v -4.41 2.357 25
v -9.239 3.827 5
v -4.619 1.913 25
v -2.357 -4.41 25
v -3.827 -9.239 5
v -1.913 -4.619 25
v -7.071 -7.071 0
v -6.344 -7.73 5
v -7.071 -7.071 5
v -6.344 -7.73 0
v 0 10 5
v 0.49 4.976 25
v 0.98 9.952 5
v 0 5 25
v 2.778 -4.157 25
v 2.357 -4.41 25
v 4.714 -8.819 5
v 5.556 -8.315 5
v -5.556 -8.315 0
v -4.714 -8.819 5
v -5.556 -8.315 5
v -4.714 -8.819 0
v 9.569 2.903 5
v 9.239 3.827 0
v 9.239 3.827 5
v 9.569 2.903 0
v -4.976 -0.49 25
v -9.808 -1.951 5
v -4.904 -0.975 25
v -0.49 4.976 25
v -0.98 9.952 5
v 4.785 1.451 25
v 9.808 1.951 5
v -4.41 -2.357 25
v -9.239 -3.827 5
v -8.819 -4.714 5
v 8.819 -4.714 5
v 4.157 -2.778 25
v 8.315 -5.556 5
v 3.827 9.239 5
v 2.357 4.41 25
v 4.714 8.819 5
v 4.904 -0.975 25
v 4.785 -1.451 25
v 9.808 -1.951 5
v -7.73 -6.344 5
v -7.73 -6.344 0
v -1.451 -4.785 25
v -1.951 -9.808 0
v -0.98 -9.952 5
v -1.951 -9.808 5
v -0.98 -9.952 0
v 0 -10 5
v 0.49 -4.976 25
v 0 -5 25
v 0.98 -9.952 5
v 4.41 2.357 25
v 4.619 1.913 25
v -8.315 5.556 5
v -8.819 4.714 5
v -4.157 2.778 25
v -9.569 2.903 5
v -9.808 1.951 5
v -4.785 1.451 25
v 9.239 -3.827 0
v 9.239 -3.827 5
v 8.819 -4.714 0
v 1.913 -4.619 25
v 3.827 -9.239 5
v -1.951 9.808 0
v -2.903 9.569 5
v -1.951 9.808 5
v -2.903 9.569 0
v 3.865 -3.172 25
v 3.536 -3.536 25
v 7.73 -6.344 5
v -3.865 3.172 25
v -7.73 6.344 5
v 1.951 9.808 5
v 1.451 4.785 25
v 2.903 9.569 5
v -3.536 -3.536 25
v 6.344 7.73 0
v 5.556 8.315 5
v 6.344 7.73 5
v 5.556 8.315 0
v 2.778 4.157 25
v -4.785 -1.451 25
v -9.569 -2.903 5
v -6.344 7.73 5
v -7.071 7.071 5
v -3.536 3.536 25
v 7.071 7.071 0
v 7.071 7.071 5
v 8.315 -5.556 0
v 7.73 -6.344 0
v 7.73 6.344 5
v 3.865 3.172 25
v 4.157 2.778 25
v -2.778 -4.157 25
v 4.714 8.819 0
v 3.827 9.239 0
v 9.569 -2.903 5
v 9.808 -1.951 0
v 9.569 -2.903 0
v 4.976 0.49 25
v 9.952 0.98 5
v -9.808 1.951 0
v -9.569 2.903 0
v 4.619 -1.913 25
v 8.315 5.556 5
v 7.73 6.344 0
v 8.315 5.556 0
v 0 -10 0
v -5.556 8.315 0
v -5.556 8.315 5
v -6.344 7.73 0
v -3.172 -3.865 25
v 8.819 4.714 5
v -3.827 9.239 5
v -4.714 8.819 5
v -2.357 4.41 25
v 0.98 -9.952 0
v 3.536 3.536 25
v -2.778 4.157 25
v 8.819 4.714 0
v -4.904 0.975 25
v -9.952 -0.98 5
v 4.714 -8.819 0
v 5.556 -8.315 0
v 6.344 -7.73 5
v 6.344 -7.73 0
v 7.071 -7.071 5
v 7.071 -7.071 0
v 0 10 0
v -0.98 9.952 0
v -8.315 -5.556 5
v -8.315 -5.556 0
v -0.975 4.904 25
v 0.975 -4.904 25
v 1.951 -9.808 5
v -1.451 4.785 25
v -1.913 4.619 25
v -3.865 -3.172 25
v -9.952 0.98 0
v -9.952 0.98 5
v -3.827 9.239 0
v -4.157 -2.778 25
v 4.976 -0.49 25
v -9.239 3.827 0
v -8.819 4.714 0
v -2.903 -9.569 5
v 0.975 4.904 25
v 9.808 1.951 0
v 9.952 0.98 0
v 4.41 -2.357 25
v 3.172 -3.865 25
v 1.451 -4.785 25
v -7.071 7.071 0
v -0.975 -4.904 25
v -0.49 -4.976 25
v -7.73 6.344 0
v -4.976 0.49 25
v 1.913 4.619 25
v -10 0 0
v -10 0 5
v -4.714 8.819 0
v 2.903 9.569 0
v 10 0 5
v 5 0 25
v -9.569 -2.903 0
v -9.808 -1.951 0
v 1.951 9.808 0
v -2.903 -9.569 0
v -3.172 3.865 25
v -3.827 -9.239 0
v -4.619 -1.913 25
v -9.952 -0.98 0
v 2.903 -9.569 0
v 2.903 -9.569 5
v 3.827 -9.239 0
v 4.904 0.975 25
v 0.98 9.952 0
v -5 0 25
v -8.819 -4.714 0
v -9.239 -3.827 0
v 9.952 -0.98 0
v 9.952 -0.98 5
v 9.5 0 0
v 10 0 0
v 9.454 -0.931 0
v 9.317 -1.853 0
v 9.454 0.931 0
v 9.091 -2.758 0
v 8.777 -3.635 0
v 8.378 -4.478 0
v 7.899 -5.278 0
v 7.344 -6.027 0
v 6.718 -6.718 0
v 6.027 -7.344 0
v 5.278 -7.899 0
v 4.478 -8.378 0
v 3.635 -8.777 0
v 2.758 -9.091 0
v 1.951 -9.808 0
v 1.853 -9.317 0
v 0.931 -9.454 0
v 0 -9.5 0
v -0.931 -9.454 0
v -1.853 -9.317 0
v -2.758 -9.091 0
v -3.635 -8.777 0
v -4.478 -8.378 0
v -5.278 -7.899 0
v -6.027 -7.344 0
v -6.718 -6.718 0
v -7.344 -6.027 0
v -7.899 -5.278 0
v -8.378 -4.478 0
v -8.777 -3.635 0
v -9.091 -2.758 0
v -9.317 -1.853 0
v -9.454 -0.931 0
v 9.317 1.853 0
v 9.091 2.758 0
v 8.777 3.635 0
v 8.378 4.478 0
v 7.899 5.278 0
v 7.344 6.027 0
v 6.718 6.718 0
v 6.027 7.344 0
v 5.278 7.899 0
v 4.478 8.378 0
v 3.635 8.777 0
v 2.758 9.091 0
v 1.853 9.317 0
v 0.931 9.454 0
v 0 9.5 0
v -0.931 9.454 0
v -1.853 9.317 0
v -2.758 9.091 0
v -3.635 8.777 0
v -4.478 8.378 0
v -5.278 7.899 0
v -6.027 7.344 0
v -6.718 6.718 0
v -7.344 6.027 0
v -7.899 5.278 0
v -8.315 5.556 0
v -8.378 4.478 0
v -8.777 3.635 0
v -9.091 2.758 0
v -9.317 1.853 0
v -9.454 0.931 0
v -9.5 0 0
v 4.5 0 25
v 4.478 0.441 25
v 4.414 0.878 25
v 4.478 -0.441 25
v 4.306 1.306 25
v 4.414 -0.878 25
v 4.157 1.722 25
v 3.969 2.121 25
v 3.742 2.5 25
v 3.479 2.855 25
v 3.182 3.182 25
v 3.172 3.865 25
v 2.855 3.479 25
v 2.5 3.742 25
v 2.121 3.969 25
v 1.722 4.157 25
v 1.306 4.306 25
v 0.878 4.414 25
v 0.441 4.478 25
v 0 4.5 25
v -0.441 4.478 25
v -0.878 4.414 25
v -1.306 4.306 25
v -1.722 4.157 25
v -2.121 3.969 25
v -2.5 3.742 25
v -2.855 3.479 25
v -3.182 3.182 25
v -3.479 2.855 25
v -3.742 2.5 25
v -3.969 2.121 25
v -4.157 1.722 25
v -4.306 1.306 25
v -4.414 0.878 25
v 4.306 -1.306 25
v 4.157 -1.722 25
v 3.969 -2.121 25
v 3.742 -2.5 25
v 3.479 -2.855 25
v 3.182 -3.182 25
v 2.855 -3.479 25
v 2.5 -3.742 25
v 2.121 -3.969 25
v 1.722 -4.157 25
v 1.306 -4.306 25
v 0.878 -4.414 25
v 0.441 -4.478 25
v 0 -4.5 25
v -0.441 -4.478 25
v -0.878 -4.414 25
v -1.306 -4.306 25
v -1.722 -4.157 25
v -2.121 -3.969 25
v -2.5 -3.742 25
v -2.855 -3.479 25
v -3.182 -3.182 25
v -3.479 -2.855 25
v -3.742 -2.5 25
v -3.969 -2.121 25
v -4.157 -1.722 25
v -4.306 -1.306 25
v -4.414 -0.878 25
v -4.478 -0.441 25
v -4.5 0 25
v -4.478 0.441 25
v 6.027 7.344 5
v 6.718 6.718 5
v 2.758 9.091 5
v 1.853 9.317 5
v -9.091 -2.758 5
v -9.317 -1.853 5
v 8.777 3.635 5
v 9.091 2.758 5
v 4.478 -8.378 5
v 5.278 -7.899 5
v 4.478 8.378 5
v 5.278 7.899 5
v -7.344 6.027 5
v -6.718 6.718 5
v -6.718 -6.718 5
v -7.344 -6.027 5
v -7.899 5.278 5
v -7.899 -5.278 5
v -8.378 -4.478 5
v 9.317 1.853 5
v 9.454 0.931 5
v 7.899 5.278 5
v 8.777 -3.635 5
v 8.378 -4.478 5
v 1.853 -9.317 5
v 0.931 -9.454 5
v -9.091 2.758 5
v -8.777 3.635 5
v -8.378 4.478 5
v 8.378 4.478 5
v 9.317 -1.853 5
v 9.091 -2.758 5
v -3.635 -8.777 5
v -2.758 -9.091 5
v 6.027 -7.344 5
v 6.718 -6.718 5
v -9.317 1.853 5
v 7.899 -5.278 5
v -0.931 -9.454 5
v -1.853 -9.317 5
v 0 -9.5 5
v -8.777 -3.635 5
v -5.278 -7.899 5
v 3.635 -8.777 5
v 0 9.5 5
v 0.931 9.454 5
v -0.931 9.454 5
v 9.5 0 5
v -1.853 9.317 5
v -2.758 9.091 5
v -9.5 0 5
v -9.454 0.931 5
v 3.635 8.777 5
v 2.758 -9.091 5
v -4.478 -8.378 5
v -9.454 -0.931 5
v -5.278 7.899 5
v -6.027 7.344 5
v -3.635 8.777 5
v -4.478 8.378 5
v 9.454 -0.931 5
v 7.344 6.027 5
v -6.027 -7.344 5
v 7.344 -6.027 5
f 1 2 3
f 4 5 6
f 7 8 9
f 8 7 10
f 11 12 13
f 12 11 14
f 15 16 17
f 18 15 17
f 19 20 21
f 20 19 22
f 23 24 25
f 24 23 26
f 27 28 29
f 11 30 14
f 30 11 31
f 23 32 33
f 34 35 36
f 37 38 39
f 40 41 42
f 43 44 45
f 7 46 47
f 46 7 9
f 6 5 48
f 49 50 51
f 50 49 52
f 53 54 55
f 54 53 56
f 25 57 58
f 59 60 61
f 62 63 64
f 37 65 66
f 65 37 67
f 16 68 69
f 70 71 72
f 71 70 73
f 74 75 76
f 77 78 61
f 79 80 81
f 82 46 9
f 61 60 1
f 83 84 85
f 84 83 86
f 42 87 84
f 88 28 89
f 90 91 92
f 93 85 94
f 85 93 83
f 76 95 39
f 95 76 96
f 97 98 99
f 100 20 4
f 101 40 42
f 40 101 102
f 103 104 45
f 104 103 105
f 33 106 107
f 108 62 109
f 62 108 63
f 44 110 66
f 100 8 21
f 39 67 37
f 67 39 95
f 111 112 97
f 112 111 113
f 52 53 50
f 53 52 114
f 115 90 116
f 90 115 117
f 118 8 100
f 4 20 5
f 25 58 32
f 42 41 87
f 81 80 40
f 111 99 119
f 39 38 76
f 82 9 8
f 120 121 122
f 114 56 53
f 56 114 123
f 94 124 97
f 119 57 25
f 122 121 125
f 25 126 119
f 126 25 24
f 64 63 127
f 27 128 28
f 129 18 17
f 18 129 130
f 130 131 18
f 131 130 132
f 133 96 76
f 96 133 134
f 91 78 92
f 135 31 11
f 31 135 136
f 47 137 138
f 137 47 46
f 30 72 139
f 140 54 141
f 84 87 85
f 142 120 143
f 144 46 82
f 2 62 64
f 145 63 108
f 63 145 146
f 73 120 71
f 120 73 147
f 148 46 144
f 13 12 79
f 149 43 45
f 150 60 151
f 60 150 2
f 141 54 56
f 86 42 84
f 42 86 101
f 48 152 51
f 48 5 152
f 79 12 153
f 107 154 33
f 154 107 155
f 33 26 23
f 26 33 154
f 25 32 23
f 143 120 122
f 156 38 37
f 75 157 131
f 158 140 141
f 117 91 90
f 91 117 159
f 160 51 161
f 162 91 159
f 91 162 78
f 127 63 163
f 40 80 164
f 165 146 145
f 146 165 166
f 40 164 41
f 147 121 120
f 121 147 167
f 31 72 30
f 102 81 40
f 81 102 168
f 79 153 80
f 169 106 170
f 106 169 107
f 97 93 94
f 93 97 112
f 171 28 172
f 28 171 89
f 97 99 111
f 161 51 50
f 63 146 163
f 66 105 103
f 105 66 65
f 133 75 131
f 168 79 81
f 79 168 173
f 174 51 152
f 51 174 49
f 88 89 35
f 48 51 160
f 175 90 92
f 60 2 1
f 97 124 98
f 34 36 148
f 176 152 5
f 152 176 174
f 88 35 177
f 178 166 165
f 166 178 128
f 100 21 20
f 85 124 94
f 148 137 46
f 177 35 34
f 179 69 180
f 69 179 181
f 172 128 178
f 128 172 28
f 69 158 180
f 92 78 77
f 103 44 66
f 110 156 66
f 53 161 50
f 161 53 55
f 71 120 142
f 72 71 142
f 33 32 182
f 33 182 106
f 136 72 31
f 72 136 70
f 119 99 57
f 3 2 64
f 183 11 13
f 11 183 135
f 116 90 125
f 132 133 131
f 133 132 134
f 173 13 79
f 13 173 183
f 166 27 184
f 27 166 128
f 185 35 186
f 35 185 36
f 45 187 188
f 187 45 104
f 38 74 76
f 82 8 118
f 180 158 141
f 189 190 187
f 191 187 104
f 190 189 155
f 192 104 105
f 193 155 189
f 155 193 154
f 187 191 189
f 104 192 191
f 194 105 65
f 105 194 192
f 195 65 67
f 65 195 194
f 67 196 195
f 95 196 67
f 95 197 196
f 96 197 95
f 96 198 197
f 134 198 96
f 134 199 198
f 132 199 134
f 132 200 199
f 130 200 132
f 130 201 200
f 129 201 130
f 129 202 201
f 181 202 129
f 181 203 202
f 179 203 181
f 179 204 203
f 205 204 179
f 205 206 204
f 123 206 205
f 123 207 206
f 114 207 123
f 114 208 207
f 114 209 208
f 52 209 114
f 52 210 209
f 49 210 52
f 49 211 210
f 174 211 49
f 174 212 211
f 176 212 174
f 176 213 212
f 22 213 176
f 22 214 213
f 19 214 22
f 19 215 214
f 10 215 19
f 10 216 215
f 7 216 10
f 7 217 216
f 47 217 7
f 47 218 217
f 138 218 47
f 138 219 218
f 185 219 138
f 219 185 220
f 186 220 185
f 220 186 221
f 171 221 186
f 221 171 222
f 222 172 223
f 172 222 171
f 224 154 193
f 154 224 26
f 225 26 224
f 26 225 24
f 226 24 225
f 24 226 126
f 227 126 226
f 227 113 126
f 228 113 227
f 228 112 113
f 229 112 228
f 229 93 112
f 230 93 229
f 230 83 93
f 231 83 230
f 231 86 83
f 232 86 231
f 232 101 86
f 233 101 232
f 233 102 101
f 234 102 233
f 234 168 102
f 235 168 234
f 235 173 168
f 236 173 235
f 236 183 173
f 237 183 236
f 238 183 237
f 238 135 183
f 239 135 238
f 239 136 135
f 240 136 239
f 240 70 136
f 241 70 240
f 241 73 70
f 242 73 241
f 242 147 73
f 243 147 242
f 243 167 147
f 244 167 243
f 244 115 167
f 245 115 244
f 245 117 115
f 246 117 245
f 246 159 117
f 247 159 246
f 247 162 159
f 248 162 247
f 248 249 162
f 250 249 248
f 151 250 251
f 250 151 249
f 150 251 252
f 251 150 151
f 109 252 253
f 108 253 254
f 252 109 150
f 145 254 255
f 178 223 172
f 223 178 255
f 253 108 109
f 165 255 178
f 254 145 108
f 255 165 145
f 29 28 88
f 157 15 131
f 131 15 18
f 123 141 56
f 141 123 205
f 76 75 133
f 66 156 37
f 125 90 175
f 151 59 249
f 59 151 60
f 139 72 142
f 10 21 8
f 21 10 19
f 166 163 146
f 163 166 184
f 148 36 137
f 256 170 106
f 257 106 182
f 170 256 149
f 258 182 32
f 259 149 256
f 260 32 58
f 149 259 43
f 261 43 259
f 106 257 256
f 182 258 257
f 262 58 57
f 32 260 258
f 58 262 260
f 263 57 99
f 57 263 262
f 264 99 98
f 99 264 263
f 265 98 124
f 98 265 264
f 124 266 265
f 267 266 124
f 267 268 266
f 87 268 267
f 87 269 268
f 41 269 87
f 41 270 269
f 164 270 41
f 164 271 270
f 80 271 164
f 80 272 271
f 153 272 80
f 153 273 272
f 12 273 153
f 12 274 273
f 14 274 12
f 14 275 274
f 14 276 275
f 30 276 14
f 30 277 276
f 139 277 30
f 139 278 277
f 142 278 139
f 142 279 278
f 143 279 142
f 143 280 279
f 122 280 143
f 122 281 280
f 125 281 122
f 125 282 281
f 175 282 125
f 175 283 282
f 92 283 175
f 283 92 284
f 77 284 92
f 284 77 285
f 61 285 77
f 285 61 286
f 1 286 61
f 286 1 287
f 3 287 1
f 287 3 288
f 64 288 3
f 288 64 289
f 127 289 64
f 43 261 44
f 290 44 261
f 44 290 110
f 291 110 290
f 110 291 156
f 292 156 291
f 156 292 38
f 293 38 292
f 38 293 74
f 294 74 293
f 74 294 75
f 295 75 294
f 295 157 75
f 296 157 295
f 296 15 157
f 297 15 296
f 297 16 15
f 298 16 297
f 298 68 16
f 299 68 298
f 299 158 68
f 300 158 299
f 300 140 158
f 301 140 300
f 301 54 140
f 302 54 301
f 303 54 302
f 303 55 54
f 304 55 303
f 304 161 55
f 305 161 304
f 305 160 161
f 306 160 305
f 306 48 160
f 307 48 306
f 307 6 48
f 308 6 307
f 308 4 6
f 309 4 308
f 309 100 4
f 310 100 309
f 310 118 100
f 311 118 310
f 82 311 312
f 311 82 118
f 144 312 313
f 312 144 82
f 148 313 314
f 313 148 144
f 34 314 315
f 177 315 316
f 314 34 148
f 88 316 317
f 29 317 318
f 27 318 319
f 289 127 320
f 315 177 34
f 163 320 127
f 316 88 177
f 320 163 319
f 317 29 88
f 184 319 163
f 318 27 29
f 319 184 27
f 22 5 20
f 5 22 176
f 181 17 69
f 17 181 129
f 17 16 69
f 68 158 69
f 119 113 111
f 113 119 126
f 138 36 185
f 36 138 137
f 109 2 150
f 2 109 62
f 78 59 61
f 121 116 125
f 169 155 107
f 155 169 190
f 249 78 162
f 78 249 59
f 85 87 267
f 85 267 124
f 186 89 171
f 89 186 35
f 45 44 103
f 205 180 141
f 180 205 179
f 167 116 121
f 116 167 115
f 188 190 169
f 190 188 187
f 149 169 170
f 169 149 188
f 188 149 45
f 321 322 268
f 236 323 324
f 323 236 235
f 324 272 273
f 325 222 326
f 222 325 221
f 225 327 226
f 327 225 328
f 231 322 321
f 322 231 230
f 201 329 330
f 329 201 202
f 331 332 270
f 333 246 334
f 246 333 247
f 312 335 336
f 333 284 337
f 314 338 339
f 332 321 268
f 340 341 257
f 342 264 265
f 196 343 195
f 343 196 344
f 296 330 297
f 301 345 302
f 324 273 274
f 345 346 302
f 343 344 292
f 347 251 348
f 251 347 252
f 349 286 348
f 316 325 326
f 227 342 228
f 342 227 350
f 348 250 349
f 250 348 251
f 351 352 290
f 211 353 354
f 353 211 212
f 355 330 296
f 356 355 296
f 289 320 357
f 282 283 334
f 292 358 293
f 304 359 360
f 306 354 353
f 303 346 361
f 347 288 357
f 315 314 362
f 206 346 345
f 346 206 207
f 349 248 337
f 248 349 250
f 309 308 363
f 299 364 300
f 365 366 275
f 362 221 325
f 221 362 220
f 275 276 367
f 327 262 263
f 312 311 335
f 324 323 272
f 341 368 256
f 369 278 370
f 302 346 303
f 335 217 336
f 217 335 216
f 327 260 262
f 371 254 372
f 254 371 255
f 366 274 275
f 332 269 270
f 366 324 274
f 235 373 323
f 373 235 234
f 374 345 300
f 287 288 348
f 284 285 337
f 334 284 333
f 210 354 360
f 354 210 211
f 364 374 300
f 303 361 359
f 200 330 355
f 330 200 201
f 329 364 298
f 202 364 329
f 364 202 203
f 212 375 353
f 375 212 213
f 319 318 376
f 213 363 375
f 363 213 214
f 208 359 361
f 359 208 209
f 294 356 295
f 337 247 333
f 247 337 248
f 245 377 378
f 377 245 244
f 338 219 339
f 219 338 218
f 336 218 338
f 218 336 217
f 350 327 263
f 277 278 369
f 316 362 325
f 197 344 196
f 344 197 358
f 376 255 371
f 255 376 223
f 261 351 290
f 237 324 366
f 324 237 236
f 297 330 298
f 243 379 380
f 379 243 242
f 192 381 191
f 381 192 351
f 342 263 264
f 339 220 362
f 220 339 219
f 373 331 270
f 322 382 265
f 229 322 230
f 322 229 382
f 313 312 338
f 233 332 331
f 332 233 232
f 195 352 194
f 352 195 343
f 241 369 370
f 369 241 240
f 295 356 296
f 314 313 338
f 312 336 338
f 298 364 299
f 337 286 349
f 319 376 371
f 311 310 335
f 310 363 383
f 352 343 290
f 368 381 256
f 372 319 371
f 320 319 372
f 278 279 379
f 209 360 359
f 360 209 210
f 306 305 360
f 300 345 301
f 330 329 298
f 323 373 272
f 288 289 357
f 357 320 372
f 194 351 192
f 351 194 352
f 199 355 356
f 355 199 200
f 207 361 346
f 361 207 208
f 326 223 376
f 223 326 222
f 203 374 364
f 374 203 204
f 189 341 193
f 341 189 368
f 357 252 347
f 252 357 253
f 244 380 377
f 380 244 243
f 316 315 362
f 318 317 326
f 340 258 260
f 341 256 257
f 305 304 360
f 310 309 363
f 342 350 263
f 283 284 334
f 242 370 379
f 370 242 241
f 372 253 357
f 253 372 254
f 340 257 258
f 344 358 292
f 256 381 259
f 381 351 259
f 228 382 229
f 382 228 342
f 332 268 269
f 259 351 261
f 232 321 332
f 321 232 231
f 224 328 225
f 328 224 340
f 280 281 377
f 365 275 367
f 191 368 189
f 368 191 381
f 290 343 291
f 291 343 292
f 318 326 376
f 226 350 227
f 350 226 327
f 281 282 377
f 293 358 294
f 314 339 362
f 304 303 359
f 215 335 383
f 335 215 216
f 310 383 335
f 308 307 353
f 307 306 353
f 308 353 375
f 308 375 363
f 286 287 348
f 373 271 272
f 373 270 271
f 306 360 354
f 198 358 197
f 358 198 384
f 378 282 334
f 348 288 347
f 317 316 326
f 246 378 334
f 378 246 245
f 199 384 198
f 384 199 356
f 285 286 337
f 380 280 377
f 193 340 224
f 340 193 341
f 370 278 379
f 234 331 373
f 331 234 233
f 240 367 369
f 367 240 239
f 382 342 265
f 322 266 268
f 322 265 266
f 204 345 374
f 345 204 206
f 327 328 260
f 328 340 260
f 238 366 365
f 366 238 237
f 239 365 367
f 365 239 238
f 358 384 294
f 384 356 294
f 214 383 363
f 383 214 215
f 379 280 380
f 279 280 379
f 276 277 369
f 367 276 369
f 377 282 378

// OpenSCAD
$fn=64;

module ConicalLampShadeSolid(r1, r2, h1, h2)
{
    hull()
    {
        cylinder(r=r1, h=h1);

        translate([0, 0, h1])
        cylinder(r=r2, h=h2);
    }
}

module ConicalLampShade(r1, r2, h1, h2, thickness)
{
    difference()
    {
        ConicalLampShadeSolid(r1, r2, h1, h2);
        ConicalLampShadeSolid(r1 - thickness/2, r2 - thickness/2, h1, h2);
    }
}

ConicalLampShade(10, 5, 5, 20, 1);
